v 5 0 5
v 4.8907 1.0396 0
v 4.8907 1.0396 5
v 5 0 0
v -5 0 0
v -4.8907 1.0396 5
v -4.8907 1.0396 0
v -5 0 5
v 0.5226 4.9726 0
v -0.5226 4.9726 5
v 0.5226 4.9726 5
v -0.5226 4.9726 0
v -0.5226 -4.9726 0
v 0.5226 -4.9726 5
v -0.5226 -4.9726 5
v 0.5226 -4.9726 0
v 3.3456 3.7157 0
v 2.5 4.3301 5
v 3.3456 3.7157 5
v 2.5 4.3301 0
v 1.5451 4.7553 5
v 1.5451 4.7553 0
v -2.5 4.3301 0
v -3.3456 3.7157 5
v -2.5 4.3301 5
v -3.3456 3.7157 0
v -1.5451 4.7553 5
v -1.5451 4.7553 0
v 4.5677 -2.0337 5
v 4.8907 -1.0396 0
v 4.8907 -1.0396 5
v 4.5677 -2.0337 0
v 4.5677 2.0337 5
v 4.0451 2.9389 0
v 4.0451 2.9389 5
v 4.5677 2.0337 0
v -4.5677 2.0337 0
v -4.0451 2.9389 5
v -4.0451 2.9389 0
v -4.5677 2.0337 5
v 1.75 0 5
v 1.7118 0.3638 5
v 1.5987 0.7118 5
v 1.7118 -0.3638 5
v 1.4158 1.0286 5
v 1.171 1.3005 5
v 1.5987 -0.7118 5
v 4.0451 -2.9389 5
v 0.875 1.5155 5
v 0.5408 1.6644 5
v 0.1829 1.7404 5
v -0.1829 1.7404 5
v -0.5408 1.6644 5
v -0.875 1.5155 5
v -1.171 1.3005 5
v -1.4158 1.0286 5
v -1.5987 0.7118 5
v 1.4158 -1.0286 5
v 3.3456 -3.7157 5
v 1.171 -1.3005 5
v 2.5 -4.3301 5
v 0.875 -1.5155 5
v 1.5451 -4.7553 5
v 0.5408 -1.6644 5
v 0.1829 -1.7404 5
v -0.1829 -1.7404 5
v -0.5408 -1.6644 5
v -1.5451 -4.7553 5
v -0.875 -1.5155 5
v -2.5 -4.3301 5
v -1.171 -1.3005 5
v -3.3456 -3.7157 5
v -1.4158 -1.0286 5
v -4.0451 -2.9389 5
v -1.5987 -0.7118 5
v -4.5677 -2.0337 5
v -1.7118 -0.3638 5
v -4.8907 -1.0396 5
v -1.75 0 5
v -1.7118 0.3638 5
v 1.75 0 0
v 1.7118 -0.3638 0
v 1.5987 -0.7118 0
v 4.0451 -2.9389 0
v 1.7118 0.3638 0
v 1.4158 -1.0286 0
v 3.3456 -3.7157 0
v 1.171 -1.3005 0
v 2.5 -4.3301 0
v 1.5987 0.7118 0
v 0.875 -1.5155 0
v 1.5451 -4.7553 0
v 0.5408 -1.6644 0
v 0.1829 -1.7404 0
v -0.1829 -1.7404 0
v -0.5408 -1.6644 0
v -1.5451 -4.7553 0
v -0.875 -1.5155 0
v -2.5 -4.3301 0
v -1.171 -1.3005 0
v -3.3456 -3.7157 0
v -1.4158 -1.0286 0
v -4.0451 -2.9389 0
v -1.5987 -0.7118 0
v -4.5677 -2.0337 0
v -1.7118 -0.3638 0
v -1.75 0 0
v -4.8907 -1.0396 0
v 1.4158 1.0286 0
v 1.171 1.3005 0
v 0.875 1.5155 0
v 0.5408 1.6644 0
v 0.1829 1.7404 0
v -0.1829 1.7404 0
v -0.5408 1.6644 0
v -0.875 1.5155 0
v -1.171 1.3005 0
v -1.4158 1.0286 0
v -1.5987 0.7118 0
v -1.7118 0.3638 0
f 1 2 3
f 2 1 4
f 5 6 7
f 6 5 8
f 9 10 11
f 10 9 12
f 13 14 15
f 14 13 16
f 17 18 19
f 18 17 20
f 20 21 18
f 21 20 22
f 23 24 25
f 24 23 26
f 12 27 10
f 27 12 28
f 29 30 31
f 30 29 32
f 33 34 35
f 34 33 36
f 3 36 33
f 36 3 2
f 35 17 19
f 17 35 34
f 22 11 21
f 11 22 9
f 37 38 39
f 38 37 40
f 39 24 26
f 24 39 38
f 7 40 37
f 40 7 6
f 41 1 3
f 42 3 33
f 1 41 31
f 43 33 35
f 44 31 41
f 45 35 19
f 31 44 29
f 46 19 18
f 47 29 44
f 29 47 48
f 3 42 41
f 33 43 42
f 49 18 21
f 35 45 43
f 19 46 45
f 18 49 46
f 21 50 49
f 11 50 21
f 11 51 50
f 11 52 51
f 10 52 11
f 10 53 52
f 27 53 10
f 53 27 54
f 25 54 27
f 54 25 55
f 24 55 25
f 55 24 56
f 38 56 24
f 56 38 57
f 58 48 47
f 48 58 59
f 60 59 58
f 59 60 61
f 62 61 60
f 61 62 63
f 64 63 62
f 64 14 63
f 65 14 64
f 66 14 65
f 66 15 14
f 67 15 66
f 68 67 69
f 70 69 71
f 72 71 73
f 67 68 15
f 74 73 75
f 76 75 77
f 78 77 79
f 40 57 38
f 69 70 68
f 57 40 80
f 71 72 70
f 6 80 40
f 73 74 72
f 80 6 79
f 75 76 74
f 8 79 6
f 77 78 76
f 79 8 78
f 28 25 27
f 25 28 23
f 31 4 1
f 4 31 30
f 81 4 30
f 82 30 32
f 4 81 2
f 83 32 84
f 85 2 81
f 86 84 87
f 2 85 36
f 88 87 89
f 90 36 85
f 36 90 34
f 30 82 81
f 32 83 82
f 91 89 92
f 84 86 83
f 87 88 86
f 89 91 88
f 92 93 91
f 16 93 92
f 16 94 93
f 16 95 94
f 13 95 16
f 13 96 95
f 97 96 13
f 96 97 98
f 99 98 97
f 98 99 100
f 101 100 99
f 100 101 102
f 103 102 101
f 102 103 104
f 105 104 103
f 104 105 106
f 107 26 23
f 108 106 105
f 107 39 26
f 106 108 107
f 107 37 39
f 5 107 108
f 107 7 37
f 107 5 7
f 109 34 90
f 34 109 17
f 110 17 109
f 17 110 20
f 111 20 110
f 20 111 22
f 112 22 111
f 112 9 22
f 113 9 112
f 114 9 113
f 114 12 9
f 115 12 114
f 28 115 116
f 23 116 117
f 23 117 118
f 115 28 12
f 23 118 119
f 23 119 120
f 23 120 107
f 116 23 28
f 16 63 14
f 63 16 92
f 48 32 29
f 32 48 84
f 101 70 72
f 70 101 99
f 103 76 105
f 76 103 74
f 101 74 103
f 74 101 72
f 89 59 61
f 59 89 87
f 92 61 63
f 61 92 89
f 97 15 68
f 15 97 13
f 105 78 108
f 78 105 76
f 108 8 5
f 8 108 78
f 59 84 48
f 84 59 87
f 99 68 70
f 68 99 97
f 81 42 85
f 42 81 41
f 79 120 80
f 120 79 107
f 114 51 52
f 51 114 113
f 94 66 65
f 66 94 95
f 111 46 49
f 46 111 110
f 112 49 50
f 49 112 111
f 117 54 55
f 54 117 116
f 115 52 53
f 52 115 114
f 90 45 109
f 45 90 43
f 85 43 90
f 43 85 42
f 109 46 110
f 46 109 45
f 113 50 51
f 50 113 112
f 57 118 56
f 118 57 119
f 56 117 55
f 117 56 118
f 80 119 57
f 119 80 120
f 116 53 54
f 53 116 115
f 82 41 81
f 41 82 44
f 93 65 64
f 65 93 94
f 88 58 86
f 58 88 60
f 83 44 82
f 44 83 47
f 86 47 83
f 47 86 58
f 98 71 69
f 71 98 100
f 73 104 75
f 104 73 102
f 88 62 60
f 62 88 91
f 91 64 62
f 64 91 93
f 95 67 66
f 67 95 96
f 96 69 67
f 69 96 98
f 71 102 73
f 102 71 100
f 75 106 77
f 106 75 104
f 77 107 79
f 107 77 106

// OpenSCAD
Diam_exterieur=10;
Diam_interieur=3.5;
Hauteur=5;
Artefact=0.05;

difference() {
    cylinder($fs=0.01,h=Hauteur,d=Diam_exterieur,center=false);
    translate([0,0,-Artefact])
        cylinder($fs=0.01,h=Hauteur+2*Artefact,d=Diam_interieur,center=false);
}
